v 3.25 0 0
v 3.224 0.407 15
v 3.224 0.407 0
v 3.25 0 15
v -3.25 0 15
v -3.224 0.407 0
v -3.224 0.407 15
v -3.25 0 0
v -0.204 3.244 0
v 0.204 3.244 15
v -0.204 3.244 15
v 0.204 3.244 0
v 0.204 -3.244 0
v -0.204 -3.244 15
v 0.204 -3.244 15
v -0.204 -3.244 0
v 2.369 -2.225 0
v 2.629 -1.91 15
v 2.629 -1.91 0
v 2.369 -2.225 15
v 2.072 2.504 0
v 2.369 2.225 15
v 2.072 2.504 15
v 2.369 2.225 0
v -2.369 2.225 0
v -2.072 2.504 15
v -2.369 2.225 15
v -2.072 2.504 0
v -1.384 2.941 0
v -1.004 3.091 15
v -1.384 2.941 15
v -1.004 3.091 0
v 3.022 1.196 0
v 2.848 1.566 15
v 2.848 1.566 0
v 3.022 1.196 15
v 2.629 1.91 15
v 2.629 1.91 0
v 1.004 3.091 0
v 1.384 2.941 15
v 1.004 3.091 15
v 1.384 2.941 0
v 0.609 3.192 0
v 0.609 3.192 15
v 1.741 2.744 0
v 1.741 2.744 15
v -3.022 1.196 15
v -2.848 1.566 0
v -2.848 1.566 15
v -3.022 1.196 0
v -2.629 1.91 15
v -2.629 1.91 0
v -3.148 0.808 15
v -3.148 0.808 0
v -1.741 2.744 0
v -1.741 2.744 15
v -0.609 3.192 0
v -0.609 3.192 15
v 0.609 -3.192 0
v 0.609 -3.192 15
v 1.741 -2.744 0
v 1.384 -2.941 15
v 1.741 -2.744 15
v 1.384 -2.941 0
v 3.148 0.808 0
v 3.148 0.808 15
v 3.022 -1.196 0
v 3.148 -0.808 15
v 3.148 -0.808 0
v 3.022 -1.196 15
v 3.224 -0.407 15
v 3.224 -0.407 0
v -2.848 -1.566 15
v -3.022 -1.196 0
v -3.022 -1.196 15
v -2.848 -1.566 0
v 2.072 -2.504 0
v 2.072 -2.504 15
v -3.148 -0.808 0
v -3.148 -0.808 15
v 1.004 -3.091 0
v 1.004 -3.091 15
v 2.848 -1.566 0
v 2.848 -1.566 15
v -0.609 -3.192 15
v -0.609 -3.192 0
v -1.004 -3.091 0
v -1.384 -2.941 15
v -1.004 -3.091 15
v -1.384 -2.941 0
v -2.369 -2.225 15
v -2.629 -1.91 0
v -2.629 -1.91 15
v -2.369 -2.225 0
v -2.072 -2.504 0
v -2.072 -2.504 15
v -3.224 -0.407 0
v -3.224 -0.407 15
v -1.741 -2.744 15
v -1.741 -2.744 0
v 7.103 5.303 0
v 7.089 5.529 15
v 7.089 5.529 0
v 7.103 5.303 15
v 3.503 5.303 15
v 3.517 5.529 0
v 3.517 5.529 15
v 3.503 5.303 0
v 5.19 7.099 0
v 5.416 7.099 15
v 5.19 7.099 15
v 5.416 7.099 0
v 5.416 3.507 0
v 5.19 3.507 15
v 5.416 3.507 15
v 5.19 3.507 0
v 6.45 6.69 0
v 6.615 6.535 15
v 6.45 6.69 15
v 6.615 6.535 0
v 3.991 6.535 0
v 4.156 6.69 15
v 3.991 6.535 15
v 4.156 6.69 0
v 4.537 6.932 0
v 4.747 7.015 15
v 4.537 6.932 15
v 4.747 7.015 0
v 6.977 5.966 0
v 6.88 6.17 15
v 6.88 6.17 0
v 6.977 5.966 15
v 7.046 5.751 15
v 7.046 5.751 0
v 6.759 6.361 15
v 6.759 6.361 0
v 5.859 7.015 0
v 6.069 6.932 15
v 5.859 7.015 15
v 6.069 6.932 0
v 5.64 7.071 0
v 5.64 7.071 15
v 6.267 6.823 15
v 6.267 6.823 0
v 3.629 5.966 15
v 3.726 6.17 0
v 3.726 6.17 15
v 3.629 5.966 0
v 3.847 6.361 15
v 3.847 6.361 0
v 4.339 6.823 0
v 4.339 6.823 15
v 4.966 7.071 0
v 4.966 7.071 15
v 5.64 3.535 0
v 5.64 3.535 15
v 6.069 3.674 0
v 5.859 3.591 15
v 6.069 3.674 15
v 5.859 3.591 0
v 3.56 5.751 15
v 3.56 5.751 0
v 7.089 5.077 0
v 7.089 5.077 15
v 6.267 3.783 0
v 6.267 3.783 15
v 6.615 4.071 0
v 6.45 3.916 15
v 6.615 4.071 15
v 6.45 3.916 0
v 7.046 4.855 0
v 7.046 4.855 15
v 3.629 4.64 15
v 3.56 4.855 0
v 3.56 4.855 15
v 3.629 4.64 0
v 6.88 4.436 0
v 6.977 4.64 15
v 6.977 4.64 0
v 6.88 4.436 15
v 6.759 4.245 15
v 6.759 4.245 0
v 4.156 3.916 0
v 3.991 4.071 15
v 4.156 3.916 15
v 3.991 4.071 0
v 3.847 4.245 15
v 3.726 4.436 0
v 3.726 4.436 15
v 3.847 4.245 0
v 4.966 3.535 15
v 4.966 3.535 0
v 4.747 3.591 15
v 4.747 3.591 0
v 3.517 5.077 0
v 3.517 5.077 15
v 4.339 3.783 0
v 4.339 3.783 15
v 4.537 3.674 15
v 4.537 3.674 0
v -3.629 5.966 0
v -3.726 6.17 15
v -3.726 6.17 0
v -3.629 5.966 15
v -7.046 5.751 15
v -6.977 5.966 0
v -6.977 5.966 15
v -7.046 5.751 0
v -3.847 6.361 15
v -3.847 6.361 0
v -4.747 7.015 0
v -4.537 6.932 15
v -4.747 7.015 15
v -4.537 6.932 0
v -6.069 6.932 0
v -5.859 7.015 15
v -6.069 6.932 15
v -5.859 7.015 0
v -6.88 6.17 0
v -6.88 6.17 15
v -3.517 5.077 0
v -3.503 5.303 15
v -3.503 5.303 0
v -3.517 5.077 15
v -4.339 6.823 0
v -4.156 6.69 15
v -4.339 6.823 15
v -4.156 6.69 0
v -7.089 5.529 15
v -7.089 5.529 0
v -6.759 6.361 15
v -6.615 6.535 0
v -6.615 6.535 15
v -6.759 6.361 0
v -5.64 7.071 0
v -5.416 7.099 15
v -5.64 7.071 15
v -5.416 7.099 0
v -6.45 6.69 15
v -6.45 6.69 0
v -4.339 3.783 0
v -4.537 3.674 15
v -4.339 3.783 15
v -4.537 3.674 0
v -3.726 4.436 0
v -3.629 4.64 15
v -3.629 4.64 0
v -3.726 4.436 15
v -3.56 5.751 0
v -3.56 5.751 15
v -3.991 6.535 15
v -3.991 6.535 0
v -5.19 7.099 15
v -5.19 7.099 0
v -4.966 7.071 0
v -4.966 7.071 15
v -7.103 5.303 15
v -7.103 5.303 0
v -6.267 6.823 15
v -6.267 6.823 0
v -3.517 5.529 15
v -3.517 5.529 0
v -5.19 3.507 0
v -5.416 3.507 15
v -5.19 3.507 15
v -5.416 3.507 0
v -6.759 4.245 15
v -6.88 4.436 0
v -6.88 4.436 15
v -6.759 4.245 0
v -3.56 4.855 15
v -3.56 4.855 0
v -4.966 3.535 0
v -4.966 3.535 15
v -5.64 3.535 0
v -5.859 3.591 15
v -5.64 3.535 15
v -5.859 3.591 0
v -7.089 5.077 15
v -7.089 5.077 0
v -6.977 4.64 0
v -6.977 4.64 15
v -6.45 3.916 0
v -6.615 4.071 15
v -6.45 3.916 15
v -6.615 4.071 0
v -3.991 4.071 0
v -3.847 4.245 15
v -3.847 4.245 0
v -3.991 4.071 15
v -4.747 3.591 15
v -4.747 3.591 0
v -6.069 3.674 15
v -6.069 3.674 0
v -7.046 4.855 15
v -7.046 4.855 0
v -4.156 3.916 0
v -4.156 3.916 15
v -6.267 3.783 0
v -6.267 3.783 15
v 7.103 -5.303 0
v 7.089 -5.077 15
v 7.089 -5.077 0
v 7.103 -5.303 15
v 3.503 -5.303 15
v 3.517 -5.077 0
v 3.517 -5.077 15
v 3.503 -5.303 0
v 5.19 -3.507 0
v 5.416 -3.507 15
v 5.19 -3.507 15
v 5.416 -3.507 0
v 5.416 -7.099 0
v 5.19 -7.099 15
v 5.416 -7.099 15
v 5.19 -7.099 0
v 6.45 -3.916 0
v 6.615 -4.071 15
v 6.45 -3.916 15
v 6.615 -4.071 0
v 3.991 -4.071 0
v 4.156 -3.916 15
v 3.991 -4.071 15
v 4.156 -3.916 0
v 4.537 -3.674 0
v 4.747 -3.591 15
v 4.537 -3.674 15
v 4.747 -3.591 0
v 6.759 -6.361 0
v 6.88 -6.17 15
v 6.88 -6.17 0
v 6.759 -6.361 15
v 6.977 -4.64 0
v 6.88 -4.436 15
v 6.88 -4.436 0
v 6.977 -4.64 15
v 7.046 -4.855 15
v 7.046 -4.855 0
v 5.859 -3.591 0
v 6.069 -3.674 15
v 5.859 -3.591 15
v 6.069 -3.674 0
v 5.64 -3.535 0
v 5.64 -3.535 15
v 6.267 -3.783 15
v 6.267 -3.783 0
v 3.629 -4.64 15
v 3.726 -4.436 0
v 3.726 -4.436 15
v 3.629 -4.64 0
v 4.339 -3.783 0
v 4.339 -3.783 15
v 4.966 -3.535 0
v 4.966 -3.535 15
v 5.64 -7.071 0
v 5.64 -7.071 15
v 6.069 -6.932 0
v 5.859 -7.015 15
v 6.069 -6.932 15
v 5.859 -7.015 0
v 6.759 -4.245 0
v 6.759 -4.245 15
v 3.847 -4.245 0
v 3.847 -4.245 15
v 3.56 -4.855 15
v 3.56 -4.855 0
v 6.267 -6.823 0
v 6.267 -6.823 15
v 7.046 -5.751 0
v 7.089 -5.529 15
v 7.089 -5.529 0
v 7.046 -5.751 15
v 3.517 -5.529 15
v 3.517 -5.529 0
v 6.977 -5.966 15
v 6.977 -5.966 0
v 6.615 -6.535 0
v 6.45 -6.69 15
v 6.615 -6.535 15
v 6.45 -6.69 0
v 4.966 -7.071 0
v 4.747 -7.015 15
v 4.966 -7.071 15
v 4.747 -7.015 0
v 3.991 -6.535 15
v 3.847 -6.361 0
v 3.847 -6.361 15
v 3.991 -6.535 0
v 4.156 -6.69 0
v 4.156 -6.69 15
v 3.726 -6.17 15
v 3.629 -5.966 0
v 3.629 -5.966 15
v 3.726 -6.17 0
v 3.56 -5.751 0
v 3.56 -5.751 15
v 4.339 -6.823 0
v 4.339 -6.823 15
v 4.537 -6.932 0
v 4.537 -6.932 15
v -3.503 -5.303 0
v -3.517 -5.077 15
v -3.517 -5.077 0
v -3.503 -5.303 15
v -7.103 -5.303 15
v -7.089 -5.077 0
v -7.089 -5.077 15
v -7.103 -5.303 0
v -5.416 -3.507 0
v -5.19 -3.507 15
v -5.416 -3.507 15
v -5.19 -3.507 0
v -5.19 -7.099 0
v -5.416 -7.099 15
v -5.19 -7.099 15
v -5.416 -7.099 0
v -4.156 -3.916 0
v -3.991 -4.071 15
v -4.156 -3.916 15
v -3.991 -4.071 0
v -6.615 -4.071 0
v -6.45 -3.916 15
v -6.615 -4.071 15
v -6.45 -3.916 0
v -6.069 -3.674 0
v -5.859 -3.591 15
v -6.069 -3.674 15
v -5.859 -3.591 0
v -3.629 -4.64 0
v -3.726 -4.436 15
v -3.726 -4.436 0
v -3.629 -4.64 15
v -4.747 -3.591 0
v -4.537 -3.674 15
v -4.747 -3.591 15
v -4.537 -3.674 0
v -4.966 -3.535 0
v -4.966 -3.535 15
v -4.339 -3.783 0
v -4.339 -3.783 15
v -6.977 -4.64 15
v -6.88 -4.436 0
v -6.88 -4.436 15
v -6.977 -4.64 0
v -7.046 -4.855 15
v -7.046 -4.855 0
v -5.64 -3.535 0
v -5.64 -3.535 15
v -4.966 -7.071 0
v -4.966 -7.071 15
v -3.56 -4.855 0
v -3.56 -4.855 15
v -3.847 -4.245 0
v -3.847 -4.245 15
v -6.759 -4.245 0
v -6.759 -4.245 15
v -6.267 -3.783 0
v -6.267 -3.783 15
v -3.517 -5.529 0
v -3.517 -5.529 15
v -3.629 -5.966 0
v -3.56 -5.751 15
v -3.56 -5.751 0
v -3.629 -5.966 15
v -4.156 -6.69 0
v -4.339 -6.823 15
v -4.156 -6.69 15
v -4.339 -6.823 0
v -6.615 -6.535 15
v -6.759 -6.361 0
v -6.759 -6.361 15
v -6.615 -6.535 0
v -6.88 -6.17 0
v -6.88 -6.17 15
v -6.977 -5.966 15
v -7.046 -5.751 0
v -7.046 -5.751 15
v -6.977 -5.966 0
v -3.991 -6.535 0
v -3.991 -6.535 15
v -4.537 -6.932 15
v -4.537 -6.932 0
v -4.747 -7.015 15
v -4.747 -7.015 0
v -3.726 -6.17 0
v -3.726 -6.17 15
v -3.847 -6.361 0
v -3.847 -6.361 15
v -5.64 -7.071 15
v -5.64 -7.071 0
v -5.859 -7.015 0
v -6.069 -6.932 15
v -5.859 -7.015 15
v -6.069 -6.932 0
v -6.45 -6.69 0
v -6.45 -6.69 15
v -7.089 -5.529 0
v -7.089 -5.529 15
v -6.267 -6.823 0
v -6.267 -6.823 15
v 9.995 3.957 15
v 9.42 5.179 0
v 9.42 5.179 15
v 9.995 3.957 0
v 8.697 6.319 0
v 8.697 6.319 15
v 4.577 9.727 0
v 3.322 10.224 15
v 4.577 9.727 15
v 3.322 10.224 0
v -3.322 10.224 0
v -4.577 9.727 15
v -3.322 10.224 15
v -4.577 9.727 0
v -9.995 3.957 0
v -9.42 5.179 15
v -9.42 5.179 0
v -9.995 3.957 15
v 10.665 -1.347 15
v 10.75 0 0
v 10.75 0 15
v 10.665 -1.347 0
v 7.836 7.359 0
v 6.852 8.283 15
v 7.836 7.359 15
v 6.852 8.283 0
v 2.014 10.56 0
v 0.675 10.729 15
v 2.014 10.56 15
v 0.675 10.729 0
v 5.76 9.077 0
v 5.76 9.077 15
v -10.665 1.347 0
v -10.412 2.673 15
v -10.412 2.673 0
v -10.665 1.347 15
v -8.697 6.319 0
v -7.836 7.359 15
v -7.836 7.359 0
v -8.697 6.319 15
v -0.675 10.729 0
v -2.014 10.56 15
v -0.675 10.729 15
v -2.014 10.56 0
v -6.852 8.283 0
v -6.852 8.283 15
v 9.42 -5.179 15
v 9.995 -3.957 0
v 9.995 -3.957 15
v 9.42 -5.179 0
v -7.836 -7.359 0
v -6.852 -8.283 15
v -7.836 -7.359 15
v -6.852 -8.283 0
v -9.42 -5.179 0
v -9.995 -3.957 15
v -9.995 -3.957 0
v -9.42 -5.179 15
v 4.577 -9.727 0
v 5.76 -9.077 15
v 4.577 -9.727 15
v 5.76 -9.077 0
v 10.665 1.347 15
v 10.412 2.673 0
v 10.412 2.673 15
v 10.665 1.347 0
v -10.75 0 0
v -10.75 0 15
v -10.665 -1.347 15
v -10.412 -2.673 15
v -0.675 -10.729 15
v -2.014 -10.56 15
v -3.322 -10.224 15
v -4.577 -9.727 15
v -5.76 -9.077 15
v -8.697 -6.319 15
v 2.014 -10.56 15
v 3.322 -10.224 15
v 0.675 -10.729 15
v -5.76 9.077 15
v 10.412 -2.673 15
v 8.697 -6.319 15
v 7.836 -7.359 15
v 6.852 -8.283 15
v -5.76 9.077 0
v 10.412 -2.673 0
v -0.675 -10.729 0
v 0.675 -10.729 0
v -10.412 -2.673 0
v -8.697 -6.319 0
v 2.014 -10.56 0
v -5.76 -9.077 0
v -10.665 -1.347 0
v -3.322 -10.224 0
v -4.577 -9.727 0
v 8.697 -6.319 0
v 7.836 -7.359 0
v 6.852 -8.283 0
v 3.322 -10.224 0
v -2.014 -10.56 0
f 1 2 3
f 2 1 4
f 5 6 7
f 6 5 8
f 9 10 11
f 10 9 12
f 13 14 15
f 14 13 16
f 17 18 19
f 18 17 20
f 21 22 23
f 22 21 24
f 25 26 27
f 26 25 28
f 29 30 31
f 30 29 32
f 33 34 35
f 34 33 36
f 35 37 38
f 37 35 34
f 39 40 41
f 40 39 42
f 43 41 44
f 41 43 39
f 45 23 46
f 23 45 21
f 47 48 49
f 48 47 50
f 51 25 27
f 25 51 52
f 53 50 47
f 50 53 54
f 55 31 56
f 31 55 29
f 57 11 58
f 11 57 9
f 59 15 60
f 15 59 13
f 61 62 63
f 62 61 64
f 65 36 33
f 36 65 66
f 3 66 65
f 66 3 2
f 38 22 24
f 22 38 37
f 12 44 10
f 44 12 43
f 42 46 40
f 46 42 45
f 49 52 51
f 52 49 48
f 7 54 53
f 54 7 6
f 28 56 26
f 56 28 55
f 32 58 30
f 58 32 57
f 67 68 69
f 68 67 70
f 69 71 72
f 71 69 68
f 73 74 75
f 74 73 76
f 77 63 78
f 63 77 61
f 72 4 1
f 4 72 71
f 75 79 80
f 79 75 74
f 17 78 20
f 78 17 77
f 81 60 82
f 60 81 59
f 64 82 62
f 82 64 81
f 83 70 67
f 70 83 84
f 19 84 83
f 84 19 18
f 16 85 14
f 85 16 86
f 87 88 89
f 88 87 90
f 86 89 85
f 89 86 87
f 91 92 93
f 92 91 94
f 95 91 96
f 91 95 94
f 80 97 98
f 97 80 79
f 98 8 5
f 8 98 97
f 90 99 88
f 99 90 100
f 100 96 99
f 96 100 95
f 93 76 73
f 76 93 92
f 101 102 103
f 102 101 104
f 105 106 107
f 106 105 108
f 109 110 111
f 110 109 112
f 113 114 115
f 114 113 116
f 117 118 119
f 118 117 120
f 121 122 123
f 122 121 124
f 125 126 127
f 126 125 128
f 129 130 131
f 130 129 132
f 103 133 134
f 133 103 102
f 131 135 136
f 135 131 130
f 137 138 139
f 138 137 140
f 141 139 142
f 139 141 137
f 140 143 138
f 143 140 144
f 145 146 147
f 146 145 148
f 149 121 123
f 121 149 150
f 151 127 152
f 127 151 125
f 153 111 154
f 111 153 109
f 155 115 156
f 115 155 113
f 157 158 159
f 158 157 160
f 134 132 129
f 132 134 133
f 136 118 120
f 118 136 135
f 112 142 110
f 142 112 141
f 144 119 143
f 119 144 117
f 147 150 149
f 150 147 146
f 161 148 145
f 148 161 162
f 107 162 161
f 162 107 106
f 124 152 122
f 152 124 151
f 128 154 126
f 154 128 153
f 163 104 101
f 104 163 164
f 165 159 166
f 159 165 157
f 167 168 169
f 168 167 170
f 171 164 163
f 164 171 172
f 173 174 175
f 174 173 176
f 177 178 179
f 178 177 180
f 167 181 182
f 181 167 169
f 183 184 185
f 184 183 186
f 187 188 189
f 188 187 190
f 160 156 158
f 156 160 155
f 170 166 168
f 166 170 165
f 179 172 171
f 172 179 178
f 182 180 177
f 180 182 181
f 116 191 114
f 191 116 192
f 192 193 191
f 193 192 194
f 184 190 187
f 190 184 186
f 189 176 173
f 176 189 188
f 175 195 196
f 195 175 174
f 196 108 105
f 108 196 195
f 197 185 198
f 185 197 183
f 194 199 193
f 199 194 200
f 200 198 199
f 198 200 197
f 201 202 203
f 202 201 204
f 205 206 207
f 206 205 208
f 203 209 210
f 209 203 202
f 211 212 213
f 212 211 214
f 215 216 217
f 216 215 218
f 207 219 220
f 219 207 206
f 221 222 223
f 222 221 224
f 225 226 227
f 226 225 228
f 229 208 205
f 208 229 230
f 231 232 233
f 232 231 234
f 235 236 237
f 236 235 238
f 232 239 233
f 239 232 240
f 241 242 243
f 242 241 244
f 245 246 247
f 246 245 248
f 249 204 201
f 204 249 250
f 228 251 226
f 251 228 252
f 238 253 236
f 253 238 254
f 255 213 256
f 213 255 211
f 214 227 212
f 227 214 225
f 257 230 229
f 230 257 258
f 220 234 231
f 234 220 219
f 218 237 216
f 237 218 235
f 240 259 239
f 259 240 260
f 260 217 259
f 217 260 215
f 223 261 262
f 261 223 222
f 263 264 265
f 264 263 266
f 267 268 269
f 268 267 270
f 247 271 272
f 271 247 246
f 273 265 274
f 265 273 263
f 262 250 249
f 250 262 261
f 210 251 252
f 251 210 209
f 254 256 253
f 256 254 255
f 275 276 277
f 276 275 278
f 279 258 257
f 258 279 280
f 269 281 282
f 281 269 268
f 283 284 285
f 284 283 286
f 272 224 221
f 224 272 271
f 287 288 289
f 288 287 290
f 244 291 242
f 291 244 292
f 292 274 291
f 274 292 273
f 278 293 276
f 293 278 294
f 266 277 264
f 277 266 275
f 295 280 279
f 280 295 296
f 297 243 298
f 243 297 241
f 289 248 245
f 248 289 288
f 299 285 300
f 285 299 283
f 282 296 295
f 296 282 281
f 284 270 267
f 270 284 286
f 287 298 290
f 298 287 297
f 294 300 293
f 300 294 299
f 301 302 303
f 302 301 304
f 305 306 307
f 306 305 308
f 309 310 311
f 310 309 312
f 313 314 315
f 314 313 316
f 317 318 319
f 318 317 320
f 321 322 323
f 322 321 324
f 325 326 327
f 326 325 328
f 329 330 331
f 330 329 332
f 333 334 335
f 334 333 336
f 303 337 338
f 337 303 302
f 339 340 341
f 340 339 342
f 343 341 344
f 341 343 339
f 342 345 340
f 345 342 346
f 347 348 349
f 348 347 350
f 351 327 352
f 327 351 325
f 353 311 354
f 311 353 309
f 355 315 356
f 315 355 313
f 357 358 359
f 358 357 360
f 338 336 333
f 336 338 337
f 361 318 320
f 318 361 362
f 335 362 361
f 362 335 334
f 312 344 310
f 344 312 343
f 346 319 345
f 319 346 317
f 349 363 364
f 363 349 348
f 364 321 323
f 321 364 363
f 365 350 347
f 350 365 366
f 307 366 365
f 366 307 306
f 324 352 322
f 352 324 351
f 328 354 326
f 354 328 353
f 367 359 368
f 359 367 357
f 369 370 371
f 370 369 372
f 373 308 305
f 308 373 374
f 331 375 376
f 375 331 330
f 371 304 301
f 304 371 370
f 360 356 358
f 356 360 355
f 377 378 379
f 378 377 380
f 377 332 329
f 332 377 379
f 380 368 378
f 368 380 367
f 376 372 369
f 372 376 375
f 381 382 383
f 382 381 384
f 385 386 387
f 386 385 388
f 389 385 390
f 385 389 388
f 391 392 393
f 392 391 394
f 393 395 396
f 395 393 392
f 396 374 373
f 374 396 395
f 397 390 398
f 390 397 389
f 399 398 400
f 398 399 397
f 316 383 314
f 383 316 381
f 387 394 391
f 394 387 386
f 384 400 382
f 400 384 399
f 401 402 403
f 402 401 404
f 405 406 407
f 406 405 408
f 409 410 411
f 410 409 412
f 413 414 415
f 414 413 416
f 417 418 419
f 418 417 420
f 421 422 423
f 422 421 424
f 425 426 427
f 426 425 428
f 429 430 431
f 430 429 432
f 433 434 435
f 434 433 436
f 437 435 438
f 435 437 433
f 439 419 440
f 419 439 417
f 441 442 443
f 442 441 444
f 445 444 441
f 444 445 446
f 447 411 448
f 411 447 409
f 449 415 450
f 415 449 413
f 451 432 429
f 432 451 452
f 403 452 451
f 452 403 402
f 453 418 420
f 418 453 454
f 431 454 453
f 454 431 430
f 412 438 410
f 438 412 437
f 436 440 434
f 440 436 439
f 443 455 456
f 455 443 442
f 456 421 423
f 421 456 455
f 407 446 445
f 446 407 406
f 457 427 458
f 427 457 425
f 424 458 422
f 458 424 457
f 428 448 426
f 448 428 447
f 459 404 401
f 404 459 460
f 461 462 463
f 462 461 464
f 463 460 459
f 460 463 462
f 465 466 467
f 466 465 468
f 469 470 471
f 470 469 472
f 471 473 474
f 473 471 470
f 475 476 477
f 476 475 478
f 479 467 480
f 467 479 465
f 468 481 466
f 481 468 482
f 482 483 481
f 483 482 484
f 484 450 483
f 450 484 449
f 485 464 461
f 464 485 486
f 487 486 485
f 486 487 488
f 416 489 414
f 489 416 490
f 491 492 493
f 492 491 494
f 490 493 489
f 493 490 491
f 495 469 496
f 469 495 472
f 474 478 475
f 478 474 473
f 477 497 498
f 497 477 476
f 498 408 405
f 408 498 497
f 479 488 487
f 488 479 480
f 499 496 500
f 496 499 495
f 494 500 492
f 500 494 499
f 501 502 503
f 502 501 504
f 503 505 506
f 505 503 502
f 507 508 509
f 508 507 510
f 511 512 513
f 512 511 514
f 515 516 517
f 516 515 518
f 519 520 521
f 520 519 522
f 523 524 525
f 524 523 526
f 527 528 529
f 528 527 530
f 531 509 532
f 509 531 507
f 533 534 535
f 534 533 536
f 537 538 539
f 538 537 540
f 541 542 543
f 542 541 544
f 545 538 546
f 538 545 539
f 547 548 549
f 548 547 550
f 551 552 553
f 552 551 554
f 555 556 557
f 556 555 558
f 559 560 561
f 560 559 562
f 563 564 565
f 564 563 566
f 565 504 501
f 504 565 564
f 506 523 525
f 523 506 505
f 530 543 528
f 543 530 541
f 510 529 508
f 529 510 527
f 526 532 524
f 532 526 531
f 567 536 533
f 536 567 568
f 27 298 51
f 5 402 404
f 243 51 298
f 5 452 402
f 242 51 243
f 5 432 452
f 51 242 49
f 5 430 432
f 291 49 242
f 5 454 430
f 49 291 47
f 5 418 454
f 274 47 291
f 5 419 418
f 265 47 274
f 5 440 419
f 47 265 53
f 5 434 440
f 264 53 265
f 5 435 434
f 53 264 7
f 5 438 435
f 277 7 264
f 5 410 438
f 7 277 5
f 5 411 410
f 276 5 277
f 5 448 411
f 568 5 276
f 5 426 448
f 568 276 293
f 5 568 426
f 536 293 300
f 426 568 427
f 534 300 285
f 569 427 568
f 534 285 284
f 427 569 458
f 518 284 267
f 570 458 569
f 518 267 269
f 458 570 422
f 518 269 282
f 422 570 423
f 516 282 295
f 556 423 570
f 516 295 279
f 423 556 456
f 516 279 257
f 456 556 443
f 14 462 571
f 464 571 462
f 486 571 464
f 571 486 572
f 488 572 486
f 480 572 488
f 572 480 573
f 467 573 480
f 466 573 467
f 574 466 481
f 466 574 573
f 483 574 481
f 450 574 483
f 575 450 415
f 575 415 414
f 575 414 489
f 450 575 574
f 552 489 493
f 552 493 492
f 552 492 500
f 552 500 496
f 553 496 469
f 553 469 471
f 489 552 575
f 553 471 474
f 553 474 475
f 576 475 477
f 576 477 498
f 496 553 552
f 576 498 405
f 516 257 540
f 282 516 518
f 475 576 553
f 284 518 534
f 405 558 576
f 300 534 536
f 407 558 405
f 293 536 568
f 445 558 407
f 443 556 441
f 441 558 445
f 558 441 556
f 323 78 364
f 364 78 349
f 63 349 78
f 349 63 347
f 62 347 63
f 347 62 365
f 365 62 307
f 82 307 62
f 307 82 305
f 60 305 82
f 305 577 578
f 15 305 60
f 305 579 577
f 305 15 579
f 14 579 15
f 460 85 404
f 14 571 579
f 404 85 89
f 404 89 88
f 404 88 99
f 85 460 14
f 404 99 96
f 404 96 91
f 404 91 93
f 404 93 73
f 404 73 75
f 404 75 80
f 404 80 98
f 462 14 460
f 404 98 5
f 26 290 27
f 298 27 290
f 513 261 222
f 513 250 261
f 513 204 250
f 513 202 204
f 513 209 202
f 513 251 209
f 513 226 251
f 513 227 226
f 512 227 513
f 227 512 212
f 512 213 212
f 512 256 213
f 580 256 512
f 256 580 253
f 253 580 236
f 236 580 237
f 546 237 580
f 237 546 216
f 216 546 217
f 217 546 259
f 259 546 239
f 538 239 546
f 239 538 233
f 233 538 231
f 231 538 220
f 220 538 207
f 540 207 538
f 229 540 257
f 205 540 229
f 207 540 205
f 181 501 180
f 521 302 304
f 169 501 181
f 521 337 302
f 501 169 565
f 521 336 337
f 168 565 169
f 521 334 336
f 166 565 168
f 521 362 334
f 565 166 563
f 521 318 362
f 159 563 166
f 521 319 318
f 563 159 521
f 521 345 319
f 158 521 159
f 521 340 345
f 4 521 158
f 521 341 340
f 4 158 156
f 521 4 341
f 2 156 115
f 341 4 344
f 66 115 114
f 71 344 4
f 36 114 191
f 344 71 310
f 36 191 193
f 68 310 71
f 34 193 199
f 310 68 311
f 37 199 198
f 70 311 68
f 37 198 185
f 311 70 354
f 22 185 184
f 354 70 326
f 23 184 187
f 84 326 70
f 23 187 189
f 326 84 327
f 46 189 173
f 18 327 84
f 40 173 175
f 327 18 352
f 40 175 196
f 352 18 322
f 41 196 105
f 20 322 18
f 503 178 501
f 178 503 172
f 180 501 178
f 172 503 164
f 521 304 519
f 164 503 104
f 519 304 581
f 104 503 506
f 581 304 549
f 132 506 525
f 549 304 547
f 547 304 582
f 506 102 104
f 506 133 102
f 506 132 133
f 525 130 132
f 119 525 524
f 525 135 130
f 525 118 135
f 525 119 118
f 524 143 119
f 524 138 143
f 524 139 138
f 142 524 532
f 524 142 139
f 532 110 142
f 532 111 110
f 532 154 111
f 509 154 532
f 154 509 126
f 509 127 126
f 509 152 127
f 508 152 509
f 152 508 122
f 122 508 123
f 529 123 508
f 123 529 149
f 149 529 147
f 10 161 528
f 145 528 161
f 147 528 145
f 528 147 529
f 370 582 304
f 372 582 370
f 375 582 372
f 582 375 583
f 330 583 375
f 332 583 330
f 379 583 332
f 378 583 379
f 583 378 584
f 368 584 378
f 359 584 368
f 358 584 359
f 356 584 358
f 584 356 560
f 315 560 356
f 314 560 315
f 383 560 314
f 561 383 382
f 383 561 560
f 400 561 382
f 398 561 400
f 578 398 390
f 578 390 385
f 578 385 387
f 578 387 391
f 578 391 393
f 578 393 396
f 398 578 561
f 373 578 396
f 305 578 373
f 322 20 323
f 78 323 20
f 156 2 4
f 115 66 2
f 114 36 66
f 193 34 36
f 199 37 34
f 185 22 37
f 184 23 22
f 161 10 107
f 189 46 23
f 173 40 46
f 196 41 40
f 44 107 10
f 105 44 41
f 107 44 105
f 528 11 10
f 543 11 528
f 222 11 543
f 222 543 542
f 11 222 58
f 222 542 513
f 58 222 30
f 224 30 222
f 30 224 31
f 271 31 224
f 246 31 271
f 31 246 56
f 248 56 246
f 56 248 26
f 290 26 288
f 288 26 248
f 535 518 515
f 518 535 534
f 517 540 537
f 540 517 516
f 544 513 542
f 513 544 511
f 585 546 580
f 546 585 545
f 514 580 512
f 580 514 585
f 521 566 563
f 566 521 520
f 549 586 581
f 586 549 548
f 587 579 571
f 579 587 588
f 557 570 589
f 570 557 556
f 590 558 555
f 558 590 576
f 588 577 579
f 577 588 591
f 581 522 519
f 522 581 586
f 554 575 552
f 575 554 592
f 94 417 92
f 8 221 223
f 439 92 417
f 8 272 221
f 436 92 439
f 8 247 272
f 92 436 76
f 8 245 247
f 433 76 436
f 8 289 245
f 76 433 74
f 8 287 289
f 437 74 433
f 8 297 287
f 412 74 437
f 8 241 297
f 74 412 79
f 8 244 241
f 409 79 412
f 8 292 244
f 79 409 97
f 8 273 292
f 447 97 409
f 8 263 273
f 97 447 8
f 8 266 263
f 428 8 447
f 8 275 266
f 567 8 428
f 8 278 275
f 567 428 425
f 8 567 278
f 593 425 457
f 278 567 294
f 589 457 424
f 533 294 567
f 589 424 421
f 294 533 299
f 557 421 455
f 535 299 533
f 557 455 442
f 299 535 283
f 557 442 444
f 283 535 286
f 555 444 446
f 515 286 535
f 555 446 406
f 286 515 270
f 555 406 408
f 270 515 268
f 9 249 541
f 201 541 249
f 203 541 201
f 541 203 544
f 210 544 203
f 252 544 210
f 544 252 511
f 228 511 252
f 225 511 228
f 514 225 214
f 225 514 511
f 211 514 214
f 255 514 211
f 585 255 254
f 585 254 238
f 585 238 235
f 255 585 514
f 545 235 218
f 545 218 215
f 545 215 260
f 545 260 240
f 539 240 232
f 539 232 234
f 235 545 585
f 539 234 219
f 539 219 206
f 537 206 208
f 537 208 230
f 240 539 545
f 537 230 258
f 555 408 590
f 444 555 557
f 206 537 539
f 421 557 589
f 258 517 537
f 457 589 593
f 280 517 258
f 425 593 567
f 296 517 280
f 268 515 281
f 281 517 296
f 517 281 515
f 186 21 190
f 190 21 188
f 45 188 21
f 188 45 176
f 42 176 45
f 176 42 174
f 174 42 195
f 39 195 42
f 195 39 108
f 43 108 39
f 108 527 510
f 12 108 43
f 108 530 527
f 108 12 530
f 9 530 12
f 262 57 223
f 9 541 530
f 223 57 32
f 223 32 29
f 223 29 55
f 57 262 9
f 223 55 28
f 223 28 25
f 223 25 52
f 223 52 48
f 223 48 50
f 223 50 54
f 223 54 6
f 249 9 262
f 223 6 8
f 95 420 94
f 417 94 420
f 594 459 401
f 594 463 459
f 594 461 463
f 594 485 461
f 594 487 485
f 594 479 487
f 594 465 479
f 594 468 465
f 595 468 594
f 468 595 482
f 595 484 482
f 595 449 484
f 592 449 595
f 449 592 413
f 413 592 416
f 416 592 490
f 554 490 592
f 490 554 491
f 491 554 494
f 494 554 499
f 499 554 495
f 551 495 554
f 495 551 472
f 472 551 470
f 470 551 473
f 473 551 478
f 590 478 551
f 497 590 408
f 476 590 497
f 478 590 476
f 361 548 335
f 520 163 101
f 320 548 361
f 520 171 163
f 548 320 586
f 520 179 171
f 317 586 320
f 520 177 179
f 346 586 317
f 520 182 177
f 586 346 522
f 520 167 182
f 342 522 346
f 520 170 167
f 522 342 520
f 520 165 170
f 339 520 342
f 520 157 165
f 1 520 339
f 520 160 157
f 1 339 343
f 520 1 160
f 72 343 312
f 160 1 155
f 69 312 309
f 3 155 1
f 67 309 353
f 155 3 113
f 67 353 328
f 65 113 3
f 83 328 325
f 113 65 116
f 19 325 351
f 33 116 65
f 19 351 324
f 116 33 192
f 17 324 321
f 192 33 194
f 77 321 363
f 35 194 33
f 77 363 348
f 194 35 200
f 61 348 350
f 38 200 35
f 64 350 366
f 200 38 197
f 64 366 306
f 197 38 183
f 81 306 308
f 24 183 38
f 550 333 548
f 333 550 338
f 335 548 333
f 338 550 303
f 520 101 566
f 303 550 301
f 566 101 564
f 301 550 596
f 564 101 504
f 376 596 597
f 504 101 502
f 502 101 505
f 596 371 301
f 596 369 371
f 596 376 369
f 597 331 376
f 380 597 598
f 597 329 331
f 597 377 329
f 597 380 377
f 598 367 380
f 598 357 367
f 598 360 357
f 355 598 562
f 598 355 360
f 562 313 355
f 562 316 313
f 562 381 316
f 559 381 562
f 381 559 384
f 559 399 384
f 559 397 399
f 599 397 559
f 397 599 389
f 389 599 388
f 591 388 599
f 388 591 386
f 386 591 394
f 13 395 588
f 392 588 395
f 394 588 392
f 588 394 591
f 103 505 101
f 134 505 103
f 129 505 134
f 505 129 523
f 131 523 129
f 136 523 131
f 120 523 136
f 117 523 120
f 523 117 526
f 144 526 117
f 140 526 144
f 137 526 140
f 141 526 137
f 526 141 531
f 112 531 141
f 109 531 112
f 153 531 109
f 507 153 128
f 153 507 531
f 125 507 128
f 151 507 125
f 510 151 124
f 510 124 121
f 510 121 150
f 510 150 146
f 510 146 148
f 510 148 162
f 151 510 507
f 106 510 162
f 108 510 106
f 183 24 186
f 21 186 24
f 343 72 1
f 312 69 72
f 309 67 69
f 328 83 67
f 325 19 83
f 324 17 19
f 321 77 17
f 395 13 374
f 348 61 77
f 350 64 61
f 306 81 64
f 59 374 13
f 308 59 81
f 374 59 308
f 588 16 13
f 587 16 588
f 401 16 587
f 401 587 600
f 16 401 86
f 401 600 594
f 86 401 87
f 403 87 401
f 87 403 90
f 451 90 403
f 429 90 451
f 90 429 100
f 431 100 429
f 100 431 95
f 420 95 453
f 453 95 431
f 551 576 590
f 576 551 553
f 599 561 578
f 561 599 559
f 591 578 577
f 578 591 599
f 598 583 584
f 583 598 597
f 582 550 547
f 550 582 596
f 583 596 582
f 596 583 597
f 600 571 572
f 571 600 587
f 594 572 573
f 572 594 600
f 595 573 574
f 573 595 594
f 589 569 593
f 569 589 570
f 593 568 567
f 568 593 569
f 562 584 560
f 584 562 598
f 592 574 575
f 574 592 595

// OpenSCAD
$fn = 50;


difference() {
	union() {
		*color(alpha = 1.0000000000, c = "gray") {
			translate(v = [0, 7, 0]) {
				linear_extrude(height = 1) {
					text(font = "Arial:style=Bold", halign = "center", size = 4.5000000000, text = "COMMENT circle main", valign = "center");
				}
			}
		}
		cylinder(h = 15, r = 10.7500000000);
	}
	union() {
		*color(alpha = 1.0000000000, c = "gray") {
			translate(v = [0, 7, 0]) {
				linear_extrude(height = 1) {
					text(font = "Arial:style=Bold", halign = "center", size = 4.5000000000, text = "COMMENT holes main", valign = "center");
				}
			}
		}
		translate(v = [0.0000000000, 0.0000000000, -50.0000000000]) {
			cylinder(h = 100, r = 3.2500000000);
		}
		translate(v = [0.0000000000, 0.0000000000, -50.0000000000]) {
			cylinder(h = 100, r = 3.2500000000);
		}
		translate(v = [0.0000000000, 0.0000000000, -50.0000000000]) {
			cylinder(h = 100, r = 3.2500000000);
		}
		translate(v = [0.0000000000, 0.0000000000, -50.0000000000]) {
			cylinder(h = 100, r = 1.8000000000);
		}
		translate(v = [0.0000000000, 0.0000000000, -50.0000000000]) {
			cylinder(h = 100, r = 1.8000000000);
		}
		translate(v = [0.0000000000, 0.0000000000, -50.0000000000]) {
			cylinder(h = 100, r = 1.8000000000);
		}
		#translate(v = [5.3030000000, 5.3030000000, -50.0000000000]) {
			cylinder(h = 100, r = 1.8000000000);
		}
		#translate(v = [-5.3030000000, 5.3030000000, -50.0000000000]) {
			cylinder(h = 100, r = 1.8000000000);
		}
		#translate(v = [5.3030000000, -5.3030000000, -50.0000000000]) {
			cylinder(h = 100, r = 1.8000000000);
		}
		#translate(v = [-5.3030000000, -5.3030000000, -50.0000000000]) {
			cylinder(h = 100, r = 1.8000000000);
		}
	}
}
